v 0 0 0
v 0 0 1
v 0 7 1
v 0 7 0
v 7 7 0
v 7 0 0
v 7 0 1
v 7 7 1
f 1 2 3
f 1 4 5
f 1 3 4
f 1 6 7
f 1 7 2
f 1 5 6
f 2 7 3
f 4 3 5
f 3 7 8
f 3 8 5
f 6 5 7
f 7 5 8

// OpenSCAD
/* Warning, this is a very basic generator with a lot of approximation 
input data : [VQFN, M9C, 7x7x1.0mm, 48, , A, C04-25406A]
generated by com.zoubworld.electronics.cad.model3d.Basic
Date : Sun Feb 15 10:50:49 CET 2026
*/

//body
color("black")
translate([0,0,0])
cube([7.0,7.0,1.0], center=false);
